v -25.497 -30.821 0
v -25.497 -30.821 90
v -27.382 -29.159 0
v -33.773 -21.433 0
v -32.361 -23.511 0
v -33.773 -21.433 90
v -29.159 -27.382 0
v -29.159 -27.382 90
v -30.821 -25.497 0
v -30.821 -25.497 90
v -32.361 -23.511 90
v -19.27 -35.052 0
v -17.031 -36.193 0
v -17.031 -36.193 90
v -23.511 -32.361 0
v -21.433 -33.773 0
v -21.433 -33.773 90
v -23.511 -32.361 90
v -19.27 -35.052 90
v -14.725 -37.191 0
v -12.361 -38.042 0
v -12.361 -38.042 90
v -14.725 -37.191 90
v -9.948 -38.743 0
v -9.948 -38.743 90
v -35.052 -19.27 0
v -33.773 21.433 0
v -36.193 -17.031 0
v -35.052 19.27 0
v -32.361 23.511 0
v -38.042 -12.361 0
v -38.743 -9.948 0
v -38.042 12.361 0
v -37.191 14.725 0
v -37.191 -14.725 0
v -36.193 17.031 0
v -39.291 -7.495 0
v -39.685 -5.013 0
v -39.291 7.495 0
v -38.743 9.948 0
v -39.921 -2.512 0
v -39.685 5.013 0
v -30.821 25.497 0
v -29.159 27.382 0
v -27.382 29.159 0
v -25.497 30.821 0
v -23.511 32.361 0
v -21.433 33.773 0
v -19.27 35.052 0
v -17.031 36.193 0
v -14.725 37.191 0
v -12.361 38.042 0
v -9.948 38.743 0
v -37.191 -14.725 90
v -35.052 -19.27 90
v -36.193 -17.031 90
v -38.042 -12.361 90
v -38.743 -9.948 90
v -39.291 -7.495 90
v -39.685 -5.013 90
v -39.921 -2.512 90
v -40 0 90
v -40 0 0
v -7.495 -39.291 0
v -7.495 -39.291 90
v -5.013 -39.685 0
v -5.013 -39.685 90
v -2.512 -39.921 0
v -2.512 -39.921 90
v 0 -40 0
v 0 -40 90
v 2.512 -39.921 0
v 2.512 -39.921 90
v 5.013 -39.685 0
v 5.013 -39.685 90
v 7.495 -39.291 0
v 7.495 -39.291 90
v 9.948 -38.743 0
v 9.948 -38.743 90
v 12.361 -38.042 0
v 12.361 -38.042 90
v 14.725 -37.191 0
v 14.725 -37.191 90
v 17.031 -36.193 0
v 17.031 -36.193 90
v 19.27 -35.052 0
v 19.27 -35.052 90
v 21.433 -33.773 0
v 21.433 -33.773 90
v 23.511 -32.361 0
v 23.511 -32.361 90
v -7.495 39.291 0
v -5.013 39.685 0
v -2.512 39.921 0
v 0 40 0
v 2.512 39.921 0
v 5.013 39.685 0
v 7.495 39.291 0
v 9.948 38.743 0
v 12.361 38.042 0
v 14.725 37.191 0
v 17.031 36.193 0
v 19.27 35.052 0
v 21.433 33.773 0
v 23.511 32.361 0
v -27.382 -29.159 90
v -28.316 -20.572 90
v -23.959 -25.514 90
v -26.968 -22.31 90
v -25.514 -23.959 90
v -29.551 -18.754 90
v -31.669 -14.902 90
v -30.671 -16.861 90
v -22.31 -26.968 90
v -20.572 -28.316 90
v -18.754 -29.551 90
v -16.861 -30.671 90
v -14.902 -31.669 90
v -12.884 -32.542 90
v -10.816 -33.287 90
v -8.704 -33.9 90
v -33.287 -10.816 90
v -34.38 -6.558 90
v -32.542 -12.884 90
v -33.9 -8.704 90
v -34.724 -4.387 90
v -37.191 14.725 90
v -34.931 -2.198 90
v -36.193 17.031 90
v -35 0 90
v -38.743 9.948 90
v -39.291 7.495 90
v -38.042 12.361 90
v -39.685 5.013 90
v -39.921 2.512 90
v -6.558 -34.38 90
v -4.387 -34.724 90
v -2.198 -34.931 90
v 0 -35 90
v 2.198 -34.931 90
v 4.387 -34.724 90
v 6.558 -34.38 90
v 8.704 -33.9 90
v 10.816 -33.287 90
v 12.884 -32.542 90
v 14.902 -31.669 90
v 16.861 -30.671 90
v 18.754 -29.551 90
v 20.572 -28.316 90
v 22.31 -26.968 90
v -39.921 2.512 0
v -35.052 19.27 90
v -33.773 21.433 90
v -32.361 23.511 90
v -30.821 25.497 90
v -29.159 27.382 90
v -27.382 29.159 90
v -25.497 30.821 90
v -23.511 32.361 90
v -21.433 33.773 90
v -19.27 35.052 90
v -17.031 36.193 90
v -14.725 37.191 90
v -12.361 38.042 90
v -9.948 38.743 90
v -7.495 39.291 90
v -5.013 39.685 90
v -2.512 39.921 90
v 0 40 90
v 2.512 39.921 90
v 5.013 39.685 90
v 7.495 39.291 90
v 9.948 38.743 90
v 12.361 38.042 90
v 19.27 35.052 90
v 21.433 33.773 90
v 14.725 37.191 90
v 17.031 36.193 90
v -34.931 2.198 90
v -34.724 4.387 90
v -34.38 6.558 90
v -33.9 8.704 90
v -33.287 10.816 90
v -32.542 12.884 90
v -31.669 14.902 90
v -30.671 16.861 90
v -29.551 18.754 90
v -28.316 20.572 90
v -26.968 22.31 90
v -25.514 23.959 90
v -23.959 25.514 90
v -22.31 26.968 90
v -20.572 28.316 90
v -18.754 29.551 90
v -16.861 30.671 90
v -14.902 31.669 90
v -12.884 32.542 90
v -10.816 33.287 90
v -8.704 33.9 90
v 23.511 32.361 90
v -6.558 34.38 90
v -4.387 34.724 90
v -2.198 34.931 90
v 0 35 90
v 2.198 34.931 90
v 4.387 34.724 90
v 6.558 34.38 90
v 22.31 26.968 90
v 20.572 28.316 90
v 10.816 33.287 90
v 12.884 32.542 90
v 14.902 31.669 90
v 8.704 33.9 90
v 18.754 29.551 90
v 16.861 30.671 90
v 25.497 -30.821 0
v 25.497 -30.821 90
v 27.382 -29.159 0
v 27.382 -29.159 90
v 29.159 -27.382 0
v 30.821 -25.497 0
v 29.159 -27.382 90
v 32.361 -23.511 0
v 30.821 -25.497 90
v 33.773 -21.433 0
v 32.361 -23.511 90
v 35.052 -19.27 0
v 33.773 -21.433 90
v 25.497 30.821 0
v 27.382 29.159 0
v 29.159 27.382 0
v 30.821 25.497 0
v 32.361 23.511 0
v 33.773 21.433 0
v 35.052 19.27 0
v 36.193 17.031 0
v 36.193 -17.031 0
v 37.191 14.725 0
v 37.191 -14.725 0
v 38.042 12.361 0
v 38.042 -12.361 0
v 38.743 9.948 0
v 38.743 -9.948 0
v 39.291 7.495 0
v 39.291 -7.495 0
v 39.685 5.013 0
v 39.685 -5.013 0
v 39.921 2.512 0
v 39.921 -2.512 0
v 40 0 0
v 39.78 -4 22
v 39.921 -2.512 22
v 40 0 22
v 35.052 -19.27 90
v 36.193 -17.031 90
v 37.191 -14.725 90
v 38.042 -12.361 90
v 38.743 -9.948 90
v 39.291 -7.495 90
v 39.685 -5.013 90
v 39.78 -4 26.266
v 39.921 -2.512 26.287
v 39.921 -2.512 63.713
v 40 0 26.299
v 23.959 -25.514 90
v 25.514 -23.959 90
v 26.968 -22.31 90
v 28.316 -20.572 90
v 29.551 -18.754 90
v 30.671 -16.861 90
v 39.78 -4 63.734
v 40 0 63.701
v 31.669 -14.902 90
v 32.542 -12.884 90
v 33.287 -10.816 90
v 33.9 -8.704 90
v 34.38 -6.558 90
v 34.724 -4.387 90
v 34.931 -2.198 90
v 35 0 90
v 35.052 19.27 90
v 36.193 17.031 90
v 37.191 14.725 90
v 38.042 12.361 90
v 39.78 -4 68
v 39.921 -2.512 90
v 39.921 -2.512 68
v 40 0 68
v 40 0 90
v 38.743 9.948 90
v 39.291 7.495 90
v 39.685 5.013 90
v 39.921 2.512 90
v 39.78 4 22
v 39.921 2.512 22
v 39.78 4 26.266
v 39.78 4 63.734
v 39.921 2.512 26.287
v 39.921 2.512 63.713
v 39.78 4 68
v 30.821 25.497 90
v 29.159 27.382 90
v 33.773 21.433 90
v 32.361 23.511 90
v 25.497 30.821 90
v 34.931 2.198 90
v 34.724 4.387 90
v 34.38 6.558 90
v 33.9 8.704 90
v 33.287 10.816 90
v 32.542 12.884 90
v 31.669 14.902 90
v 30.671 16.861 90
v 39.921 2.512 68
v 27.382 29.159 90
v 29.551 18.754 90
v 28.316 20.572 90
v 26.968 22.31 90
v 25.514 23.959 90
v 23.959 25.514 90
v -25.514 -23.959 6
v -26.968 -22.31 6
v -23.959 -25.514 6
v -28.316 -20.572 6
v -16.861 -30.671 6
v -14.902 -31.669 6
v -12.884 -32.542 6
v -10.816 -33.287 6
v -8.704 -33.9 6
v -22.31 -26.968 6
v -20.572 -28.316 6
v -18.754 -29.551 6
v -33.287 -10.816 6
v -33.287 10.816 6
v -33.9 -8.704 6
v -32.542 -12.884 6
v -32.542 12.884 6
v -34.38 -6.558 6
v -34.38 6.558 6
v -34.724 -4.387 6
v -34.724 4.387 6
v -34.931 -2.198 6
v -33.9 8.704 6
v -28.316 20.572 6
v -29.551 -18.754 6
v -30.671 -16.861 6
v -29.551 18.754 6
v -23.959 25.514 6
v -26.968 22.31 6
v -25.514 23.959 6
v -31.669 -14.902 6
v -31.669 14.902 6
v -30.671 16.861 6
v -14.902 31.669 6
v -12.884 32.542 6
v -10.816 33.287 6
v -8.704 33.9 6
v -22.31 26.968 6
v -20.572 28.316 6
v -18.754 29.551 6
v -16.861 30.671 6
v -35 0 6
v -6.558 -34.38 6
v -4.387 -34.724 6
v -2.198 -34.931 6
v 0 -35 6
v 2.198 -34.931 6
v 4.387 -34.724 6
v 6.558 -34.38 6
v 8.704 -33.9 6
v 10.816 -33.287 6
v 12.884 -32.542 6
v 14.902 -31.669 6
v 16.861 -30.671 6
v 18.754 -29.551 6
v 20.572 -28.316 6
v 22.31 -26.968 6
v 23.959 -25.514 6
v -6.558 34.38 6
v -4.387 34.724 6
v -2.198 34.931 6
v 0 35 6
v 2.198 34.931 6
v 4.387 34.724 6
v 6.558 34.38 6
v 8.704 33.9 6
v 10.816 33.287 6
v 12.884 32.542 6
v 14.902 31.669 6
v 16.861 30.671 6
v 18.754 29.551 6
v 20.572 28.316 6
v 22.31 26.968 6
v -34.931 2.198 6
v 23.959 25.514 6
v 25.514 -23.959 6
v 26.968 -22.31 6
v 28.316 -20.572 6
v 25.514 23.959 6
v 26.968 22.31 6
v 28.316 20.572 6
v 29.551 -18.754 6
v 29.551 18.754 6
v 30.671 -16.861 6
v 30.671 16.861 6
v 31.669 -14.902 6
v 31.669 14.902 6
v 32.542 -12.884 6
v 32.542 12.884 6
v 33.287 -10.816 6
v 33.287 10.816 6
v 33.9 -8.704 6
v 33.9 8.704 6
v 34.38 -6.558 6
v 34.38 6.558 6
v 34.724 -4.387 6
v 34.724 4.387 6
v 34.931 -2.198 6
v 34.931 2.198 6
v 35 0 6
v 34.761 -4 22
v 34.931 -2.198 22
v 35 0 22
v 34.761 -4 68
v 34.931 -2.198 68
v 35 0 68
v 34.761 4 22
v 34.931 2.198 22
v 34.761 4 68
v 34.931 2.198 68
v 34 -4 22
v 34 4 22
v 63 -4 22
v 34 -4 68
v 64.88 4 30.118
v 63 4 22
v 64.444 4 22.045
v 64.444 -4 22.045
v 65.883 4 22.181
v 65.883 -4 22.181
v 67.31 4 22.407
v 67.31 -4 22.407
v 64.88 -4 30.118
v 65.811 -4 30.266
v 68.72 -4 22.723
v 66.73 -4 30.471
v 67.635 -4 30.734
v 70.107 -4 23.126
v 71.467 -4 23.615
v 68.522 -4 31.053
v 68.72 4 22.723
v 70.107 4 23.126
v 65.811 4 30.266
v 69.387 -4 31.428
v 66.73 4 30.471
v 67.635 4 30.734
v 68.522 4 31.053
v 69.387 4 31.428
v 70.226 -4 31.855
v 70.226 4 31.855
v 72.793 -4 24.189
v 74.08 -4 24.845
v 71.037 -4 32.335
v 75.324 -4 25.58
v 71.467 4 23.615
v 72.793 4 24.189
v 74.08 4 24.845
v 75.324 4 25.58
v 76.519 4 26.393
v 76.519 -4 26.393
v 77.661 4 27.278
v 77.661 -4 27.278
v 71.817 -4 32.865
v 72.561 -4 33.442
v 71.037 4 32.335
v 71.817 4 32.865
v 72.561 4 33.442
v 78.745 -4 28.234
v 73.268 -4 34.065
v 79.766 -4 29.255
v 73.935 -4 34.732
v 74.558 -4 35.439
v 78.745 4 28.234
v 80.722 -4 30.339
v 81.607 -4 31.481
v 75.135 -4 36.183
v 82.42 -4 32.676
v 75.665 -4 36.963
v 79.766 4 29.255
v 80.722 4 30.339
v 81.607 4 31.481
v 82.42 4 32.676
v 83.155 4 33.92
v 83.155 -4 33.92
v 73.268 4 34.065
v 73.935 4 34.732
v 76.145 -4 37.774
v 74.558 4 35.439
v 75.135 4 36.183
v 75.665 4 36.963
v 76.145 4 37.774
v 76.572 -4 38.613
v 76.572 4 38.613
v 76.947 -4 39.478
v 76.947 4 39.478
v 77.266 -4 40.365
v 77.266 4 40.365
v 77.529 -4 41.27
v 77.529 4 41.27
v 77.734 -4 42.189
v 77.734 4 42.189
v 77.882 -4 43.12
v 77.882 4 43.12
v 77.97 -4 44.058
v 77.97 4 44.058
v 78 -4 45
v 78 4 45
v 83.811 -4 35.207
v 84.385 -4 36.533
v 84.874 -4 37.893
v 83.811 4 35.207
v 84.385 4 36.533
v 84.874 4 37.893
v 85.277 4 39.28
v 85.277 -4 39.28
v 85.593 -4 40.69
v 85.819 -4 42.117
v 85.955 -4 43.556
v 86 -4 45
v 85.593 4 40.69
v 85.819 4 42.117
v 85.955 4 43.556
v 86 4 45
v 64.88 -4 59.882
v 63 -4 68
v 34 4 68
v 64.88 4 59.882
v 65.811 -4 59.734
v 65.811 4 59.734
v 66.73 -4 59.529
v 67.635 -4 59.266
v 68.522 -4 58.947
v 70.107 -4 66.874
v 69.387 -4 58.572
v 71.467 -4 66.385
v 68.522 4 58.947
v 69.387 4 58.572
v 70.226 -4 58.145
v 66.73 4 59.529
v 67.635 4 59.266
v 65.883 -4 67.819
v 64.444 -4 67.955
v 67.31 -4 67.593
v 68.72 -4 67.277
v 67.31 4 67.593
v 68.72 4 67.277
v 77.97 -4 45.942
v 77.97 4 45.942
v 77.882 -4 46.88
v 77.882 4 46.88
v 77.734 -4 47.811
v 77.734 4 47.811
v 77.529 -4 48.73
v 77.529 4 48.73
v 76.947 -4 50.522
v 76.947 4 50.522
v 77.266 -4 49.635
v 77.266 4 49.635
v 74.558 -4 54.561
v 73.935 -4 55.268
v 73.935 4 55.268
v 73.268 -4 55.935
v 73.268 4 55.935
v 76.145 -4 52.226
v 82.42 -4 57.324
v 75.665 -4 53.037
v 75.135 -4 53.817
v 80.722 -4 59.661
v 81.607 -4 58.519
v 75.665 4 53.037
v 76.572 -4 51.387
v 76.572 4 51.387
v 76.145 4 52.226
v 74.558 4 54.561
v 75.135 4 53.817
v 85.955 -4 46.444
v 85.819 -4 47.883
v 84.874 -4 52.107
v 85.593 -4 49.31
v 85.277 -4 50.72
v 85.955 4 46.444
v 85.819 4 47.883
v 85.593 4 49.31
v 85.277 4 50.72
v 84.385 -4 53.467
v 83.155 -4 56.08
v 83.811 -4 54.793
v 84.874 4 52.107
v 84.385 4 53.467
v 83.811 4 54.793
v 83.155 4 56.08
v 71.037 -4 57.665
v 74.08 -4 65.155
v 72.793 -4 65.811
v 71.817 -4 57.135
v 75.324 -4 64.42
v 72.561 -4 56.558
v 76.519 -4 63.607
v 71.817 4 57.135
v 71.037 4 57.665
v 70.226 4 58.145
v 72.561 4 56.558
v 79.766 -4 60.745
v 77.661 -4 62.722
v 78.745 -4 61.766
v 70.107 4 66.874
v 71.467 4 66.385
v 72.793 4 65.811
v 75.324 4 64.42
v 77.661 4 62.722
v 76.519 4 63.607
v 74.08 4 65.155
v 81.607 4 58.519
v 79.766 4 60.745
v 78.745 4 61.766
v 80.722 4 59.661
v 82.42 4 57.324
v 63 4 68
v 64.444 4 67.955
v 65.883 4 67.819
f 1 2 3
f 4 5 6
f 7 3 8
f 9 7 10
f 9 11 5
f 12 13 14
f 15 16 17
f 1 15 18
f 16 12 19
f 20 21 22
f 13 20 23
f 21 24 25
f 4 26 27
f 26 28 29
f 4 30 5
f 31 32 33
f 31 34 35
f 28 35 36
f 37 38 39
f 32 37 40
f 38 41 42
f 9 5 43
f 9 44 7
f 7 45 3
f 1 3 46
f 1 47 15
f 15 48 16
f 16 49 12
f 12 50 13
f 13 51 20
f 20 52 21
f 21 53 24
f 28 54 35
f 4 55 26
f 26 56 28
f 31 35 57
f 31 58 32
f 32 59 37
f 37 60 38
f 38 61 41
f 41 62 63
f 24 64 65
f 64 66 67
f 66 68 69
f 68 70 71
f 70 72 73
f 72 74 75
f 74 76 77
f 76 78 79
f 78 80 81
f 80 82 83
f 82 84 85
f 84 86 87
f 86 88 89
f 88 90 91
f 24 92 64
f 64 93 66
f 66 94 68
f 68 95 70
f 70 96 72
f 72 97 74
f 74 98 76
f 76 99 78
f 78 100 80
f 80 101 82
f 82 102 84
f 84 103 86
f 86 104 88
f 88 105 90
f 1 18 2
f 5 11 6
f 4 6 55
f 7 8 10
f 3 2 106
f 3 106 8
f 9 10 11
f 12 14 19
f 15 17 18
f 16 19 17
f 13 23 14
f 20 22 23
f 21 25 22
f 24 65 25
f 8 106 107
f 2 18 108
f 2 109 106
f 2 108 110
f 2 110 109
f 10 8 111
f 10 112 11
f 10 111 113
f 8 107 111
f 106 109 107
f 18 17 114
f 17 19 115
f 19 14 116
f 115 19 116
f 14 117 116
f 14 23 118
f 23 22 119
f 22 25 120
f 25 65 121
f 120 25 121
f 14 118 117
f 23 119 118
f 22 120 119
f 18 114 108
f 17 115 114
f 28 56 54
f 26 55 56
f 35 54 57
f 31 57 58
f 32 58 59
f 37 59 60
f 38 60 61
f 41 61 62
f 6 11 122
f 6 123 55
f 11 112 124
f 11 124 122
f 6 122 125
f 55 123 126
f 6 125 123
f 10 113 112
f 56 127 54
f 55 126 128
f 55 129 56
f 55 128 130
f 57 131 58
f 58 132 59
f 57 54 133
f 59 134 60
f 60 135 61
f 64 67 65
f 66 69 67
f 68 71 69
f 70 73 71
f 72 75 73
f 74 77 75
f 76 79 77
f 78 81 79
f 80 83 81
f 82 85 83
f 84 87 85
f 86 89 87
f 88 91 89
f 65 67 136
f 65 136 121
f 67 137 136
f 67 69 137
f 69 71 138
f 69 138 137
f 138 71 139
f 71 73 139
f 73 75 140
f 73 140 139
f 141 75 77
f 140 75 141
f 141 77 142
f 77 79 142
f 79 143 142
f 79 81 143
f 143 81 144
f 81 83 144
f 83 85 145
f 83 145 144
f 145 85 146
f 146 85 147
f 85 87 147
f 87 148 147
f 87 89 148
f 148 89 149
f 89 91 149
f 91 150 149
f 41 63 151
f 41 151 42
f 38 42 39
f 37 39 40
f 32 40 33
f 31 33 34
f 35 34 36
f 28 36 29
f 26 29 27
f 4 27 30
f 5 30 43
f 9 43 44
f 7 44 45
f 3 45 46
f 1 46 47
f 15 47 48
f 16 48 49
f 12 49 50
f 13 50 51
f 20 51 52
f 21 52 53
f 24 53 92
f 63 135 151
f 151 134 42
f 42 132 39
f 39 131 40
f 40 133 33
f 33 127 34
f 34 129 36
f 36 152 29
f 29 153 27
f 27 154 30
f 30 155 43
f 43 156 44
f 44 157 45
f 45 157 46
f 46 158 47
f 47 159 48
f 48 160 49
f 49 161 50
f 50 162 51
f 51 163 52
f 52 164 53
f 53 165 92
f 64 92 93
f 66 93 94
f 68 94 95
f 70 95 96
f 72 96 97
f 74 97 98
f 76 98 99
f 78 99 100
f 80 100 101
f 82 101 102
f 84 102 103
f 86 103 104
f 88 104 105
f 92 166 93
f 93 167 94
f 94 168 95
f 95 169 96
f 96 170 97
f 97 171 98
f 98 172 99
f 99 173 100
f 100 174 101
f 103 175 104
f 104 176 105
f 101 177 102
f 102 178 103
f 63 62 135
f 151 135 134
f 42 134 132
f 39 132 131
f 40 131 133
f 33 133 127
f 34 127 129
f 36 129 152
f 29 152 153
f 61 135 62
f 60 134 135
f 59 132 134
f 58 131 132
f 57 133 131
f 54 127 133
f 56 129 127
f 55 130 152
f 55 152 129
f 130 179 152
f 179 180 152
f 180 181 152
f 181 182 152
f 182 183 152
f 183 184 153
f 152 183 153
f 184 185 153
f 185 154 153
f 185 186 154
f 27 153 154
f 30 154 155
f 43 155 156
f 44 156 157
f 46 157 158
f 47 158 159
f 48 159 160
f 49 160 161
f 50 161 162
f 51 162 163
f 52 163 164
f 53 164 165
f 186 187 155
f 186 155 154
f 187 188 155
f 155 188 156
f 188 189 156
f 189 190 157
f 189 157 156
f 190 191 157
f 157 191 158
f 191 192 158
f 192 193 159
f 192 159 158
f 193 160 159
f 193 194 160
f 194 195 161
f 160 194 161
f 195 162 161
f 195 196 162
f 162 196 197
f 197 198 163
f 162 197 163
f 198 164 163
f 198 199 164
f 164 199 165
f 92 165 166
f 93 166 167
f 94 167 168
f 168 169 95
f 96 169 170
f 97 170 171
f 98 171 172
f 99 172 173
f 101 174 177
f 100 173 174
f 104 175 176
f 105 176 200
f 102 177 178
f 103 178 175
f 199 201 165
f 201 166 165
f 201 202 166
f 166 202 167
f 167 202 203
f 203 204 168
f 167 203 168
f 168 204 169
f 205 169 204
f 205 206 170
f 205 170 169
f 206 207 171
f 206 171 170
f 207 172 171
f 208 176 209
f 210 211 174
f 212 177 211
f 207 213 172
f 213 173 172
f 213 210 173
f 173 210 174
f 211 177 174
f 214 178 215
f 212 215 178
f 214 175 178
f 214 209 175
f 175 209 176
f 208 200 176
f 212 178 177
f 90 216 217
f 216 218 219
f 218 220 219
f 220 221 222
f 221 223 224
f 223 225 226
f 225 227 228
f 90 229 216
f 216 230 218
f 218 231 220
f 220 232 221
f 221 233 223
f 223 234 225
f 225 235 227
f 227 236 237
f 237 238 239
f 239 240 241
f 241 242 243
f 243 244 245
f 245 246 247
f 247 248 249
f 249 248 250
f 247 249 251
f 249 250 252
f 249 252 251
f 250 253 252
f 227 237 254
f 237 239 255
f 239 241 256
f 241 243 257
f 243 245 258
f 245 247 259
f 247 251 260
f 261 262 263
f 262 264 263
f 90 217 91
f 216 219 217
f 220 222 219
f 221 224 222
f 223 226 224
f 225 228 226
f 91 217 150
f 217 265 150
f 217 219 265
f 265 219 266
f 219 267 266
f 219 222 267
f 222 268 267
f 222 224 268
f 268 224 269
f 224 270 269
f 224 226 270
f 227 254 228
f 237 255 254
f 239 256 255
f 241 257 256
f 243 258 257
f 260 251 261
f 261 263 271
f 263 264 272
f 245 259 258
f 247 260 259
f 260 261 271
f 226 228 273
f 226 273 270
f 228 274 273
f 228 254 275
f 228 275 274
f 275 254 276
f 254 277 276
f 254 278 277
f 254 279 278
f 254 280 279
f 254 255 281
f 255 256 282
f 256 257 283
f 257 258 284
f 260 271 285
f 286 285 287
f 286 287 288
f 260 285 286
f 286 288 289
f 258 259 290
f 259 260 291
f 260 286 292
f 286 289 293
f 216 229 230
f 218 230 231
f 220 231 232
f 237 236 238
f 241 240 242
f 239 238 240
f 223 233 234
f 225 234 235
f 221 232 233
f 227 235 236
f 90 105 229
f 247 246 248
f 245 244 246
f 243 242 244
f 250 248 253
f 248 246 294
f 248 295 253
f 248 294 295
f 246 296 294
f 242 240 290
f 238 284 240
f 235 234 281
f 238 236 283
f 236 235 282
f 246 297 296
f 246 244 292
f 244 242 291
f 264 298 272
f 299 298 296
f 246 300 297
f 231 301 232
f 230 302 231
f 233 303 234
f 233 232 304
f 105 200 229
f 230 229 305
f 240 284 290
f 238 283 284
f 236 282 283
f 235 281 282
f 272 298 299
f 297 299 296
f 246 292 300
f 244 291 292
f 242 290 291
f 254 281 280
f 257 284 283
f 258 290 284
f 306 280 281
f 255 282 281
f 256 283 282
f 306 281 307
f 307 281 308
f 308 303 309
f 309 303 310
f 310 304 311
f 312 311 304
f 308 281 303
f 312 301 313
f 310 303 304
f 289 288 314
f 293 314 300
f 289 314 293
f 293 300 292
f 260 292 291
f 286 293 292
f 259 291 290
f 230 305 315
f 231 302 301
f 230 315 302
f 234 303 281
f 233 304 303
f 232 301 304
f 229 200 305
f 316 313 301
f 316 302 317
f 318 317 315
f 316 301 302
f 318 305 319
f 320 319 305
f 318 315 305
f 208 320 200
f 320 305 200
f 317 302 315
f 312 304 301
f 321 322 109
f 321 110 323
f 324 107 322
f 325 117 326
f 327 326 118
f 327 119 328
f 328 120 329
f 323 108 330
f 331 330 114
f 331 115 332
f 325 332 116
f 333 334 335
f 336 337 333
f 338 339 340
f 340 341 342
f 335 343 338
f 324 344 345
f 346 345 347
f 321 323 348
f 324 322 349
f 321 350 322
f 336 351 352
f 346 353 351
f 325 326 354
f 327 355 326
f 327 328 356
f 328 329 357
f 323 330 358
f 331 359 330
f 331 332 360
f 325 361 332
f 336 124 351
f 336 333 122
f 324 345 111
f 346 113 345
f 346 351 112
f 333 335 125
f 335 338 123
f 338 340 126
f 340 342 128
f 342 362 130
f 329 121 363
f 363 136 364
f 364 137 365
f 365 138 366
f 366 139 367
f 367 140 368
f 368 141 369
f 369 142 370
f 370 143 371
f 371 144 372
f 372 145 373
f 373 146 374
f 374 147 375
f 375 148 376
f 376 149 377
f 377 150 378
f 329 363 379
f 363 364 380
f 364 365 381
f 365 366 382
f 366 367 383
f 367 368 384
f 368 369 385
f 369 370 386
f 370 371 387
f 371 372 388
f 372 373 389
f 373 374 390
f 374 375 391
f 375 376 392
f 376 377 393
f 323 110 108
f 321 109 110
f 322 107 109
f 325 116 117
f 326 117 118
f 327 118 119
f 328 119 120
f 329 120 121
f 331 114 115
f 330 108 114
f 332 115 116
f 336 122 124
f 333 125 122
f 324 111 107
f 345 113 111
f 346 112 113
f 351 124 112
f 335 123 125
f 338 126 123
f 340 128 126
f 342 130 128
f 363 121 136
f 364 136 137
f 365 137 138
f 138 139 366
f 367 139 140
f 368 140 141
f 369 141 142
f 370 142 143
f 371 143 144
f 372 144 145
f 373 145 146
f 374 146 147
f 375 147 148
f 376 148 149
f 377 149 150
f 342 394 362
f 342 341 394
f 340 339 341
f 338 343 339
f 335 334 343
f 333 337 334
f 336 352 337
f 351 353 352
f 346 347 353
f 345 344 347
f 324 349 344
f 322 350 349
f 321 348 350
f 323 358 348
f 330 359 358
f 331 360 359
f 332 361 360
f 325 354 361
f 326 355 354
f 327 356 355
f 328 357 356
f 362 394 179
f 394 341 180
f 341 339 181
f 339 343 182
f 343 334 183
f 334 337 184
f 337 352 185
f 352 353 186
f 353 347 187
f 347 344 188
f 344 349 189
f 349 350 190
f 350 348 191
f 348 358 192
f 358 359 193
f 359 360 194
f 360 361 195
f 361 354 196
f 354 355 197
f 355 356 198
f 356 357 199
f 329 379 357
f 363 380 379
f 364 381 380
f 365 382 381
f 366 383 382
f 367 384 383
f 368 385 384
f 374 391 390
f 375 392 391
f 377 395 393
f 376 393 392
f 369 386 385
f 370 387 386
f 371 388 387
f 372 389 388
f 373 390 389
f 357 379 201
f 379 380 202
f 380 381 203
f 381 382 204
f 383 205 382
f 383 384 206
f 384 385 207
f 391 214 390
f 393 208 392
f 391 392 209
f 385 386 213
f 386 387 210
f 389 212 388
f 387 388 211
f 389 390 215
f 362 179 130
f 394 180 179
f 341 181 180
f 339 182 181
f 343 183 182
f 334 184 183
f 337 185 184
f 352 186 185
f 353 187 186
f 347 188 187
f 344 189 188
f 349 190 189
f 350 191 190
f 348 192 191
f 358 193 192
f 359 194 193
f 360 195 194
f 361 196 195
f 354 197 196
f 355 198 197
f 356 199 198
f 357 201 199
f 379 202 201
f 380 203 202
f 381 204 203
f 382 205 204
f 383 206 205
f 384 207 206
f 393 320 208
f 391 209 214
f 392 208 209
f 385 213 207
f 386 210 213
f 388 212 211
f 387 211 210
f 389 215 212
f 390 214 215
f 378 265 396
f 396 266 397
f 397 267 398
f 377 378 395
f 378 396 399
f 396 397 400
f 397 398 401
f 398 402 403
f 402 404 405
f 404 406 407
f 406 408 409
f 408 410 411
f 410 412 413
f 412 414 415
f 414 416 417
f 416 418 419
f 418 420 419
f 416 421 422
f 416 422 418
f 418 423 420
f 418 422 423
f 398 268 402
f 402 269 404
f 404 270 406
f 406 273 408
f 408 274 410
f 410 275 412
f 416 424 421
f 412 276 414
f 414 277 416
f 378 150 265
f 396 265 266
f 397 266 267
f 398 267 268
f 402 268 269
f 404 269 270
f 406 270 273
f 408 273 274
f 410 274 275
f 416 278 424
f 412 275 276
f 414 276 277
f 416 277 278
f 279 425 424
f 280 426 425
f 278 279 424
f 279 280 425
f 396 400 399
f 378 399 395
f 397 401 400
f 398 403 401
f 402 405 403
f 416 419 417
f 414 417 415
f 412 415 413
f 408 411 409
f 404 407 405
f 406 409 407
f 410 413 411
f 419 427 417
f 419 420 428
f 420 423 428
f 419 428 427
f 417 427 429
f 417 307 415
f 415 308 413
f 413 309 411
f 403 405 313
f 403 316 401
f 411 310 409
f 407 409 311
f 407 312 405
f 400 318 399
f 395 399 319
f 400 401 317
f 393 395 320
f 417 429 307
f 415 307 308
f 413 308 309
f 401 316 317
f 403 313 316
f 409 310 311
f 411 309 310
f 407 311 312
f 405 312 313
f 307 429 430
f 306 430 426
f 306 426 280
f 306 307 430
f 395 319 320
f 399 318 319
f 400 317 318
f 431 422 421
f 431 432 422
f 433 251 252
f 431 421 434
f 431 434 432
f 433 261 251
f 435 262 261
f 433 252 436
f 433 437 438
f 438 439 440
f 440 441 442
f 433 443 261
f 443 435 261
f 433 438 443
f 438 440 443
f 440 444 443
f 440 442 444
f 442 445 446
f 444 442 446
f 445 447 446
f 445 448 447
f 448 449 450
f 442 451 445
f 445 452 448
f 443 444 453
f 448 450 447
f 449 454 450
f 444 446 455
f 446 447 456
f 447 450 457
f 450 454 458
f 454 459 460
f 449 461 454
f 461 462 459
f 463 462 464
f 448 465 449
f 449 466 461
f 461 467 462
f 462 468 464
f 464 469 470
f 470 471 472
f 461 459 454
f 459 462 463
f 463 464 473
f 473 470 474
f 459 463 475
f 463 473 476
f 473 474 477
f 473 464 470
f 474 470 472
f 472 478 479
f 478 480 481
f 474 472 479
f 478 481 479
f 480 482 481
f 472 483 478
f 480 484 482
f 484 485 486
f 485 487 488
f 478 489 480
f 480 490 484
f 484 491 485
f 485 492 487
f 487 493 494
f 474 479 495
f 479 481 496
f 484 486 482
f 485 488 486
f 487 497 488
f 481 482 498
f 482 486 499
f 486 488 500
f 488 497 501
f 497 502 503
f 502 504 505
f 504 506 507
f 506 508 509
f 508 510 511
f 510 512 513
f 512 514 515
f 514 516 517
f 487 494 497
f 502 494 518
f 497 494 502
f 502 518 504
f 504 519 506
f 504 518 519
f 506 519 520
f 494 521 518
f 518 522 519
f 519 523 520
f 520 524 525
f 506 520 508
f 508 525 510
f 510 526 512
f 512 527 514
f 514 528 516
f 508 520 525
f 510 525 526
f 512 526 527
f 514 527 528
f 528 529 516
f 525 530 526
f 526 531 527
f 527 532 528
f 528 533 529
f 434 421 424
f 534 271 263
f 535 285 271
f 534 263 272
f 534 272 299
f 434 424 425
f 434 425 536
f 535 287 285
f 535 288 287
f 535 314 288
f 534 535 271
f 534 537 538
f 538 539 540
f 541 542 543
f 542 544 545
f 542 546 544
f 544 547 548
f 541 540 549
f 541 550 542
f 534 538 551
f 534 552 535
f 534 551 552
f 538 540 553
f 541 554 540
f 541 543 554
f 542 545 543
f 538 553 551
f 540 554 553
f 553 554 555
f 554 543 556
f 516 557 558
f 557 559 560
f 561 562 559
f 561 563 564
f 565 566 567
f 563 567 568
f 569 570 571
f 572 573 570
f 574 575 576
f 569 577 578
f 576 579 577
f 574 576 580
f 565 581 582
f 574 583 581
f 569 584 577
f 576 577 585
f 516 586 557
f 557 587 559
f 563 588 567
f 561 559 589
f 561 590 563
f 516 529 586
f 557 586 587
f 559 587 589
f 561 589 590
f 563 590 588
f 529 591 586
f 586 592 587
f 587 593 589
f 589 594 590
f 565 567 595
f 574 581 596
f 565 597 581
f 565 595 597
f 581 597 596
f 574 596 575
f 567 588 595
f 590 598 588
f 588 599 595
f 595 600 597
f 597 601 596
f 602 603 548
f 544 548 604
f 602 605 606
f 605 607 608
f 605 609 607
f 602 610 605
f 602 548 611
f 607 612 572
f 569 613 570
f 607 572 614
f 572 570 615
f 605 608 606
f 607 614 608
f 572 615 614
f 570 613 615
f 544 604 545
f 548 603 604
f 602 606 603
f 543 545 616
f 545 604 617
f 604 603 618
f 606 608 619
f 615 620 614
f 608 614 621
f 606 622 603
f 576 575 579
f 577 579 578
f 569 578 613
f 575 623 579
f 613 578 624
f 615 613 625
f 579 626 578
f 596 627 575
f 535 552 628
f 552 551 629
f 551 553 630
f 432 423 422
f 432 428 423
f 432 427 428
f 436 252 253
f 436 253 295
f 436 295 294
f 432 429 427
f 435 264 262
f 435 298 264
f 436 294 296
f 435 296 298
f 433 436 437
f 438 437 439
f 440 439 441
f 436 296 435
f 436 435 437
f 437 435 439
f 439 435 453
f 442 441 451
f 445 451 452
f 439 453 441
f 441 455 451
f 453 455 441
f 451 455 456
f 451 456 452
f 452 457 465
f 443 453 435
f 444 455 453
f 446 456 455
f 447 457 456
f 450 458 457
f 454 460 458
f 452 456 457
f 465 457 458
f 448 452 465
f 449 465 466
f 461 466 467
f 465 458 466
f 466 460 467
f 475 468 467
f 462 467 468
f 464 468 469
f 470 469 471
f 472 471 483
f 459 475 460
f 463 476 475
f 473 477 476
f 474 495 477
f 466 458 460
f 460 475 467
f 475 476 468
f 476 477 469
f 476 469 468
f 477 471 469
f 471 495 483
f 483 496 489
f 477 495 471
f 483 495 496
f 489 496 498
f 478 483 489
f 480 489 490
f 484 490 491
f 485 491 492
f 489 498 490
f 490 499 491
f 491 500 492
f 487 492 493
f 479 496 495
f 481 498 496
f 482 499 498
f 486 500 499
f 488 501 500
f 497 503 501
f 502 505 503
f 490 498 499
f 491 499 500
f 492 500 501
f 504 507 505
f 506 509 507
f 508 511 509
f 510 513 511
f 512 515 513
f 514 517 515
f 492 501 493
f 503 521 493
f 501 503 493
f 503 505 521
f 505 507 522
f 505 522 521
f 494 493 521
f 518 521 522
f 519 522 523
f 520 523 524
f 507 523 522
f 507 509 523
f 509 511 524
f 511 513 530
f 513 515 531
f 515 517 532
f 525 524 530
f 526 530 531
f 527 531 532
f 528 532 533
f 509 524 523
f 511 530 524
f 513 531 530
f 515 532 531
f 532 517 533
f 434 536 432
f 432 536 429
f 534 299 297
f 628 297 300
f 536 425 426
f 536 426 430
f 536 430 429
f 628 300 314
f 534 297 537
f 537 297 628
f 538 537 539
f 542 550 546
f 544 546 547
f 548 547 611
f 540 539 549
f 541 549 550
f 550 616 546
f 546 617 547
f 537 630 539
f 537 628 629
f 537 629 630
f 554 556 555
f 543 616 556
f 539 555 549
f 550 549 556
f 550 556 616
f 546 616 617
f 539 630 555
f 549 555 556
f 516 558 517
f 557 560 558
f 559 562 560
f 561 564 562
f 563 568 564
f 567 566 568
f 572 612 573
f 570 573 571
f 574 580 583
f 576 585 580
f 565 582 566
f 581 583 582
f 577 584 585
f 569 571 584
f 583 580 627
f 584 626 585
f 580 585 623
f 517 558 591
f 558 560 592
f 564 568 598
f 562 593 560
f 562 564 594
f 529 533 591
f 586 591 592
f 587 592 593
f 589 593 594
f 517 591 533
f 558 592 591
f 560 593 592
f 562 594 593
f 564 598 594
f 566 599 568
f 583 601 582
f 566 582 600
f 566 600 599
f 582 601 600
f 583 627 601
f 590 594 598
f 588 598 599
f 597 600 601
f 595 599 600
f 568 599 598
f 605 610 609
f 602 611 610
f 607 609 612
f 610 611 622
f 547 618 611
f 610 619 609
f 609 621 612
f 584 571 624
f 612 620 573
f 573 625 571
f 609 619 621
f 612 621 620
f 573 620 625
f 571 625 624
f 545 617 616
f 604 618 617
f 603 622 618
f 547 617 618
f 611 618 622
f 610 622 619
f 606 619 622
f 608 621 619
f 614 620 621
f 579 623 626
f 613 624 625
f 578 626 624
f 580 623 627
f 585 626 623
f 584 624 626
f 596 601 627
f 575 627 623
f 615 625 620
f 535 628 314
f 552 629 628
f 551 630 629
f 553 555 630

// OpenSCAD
// マグカップ（取手は +X 方向のみ）

$fn = 100;

// ===== パラメータ =====
outer_d   = 80;   // 外径
inner_d   = 70;   // 内径
height    = 90;   // 全体高さ
bottom_th = 6;    // 底厚

outer_r = outer_d / 2;
inner_r = inner_d / 2;

// 取手パラメータ
handle_hole_h = 30;   // 内側空間の高さ
handle_hole_w = 25;   // 内側空間の幅
handle_th     = 8;    // 取手の太さ（断面）
handle_z      = height / 2;  // 取手の高さ中心

// ===== 本体 =====
module body() {
    difference() {
        cylinder(h = height, r = outer_r);
        // 内側中空
        translate([0, 0, bottom_th])
            cylinder(h = height - bottom_th + 1, r = inner_r);
    }
}

// ===== 取手（D字形状）=====
module handle() {
    // 外側半径と内側半径
    inner_handle_r = handle_hole_h / 2;          // D字の内側半円半径（高さ方向）
    outer_handle_r = inner_handle_r + handle_th; // 外側半径

    // 取手を rotate_extrude で D 字状リングとして作り、
    // 半分（外側半円側）だけを使う方式ではなく、
    // ここでは平面 D 字形を押し出して構成する。

    translate([0, 0, handle_z])
    rotate([90, 0, 0])   // XZ平面の形を Y 方向に厚みを持たせる
    linear_extrude(height = handle_th, center = true)
        difference() {
            // 外形 D 字（外側半円 + 本体側直線）
            hull() {
                // 本体側の上下端（直線部）
                translate([0, -handle_hole_h/2 - handle_th/2])
                    square([handle_th, handle_th], center = true);
                translate([0,  handle_hole_h/2 + handle_th/2])
                    square([handle_th, handle_th], center = true);
                // 外側半円
                translate([handle_hole_w, 0])
                    circle(r = outer_handle_r);
            }
            // 内側の穴
            hull() {
                translate([0, -handle_hole_h/2])
                    square([0.1, handle_th], center = true);
                translate([0,  handle_hole_h/2])
                    square([0.1, handle_th], center = true);
                translate([handle_hole_w, 0])
                    circle(r = inner_handle_r);
            }
        }
}

// ===== 組み立て =====
union() {
    body();
    // 取手を本体外周に接続（少し本体側へめり込ませて確実に union）
    translate([outer_r - 2, 0, 0])
        handle();
}
